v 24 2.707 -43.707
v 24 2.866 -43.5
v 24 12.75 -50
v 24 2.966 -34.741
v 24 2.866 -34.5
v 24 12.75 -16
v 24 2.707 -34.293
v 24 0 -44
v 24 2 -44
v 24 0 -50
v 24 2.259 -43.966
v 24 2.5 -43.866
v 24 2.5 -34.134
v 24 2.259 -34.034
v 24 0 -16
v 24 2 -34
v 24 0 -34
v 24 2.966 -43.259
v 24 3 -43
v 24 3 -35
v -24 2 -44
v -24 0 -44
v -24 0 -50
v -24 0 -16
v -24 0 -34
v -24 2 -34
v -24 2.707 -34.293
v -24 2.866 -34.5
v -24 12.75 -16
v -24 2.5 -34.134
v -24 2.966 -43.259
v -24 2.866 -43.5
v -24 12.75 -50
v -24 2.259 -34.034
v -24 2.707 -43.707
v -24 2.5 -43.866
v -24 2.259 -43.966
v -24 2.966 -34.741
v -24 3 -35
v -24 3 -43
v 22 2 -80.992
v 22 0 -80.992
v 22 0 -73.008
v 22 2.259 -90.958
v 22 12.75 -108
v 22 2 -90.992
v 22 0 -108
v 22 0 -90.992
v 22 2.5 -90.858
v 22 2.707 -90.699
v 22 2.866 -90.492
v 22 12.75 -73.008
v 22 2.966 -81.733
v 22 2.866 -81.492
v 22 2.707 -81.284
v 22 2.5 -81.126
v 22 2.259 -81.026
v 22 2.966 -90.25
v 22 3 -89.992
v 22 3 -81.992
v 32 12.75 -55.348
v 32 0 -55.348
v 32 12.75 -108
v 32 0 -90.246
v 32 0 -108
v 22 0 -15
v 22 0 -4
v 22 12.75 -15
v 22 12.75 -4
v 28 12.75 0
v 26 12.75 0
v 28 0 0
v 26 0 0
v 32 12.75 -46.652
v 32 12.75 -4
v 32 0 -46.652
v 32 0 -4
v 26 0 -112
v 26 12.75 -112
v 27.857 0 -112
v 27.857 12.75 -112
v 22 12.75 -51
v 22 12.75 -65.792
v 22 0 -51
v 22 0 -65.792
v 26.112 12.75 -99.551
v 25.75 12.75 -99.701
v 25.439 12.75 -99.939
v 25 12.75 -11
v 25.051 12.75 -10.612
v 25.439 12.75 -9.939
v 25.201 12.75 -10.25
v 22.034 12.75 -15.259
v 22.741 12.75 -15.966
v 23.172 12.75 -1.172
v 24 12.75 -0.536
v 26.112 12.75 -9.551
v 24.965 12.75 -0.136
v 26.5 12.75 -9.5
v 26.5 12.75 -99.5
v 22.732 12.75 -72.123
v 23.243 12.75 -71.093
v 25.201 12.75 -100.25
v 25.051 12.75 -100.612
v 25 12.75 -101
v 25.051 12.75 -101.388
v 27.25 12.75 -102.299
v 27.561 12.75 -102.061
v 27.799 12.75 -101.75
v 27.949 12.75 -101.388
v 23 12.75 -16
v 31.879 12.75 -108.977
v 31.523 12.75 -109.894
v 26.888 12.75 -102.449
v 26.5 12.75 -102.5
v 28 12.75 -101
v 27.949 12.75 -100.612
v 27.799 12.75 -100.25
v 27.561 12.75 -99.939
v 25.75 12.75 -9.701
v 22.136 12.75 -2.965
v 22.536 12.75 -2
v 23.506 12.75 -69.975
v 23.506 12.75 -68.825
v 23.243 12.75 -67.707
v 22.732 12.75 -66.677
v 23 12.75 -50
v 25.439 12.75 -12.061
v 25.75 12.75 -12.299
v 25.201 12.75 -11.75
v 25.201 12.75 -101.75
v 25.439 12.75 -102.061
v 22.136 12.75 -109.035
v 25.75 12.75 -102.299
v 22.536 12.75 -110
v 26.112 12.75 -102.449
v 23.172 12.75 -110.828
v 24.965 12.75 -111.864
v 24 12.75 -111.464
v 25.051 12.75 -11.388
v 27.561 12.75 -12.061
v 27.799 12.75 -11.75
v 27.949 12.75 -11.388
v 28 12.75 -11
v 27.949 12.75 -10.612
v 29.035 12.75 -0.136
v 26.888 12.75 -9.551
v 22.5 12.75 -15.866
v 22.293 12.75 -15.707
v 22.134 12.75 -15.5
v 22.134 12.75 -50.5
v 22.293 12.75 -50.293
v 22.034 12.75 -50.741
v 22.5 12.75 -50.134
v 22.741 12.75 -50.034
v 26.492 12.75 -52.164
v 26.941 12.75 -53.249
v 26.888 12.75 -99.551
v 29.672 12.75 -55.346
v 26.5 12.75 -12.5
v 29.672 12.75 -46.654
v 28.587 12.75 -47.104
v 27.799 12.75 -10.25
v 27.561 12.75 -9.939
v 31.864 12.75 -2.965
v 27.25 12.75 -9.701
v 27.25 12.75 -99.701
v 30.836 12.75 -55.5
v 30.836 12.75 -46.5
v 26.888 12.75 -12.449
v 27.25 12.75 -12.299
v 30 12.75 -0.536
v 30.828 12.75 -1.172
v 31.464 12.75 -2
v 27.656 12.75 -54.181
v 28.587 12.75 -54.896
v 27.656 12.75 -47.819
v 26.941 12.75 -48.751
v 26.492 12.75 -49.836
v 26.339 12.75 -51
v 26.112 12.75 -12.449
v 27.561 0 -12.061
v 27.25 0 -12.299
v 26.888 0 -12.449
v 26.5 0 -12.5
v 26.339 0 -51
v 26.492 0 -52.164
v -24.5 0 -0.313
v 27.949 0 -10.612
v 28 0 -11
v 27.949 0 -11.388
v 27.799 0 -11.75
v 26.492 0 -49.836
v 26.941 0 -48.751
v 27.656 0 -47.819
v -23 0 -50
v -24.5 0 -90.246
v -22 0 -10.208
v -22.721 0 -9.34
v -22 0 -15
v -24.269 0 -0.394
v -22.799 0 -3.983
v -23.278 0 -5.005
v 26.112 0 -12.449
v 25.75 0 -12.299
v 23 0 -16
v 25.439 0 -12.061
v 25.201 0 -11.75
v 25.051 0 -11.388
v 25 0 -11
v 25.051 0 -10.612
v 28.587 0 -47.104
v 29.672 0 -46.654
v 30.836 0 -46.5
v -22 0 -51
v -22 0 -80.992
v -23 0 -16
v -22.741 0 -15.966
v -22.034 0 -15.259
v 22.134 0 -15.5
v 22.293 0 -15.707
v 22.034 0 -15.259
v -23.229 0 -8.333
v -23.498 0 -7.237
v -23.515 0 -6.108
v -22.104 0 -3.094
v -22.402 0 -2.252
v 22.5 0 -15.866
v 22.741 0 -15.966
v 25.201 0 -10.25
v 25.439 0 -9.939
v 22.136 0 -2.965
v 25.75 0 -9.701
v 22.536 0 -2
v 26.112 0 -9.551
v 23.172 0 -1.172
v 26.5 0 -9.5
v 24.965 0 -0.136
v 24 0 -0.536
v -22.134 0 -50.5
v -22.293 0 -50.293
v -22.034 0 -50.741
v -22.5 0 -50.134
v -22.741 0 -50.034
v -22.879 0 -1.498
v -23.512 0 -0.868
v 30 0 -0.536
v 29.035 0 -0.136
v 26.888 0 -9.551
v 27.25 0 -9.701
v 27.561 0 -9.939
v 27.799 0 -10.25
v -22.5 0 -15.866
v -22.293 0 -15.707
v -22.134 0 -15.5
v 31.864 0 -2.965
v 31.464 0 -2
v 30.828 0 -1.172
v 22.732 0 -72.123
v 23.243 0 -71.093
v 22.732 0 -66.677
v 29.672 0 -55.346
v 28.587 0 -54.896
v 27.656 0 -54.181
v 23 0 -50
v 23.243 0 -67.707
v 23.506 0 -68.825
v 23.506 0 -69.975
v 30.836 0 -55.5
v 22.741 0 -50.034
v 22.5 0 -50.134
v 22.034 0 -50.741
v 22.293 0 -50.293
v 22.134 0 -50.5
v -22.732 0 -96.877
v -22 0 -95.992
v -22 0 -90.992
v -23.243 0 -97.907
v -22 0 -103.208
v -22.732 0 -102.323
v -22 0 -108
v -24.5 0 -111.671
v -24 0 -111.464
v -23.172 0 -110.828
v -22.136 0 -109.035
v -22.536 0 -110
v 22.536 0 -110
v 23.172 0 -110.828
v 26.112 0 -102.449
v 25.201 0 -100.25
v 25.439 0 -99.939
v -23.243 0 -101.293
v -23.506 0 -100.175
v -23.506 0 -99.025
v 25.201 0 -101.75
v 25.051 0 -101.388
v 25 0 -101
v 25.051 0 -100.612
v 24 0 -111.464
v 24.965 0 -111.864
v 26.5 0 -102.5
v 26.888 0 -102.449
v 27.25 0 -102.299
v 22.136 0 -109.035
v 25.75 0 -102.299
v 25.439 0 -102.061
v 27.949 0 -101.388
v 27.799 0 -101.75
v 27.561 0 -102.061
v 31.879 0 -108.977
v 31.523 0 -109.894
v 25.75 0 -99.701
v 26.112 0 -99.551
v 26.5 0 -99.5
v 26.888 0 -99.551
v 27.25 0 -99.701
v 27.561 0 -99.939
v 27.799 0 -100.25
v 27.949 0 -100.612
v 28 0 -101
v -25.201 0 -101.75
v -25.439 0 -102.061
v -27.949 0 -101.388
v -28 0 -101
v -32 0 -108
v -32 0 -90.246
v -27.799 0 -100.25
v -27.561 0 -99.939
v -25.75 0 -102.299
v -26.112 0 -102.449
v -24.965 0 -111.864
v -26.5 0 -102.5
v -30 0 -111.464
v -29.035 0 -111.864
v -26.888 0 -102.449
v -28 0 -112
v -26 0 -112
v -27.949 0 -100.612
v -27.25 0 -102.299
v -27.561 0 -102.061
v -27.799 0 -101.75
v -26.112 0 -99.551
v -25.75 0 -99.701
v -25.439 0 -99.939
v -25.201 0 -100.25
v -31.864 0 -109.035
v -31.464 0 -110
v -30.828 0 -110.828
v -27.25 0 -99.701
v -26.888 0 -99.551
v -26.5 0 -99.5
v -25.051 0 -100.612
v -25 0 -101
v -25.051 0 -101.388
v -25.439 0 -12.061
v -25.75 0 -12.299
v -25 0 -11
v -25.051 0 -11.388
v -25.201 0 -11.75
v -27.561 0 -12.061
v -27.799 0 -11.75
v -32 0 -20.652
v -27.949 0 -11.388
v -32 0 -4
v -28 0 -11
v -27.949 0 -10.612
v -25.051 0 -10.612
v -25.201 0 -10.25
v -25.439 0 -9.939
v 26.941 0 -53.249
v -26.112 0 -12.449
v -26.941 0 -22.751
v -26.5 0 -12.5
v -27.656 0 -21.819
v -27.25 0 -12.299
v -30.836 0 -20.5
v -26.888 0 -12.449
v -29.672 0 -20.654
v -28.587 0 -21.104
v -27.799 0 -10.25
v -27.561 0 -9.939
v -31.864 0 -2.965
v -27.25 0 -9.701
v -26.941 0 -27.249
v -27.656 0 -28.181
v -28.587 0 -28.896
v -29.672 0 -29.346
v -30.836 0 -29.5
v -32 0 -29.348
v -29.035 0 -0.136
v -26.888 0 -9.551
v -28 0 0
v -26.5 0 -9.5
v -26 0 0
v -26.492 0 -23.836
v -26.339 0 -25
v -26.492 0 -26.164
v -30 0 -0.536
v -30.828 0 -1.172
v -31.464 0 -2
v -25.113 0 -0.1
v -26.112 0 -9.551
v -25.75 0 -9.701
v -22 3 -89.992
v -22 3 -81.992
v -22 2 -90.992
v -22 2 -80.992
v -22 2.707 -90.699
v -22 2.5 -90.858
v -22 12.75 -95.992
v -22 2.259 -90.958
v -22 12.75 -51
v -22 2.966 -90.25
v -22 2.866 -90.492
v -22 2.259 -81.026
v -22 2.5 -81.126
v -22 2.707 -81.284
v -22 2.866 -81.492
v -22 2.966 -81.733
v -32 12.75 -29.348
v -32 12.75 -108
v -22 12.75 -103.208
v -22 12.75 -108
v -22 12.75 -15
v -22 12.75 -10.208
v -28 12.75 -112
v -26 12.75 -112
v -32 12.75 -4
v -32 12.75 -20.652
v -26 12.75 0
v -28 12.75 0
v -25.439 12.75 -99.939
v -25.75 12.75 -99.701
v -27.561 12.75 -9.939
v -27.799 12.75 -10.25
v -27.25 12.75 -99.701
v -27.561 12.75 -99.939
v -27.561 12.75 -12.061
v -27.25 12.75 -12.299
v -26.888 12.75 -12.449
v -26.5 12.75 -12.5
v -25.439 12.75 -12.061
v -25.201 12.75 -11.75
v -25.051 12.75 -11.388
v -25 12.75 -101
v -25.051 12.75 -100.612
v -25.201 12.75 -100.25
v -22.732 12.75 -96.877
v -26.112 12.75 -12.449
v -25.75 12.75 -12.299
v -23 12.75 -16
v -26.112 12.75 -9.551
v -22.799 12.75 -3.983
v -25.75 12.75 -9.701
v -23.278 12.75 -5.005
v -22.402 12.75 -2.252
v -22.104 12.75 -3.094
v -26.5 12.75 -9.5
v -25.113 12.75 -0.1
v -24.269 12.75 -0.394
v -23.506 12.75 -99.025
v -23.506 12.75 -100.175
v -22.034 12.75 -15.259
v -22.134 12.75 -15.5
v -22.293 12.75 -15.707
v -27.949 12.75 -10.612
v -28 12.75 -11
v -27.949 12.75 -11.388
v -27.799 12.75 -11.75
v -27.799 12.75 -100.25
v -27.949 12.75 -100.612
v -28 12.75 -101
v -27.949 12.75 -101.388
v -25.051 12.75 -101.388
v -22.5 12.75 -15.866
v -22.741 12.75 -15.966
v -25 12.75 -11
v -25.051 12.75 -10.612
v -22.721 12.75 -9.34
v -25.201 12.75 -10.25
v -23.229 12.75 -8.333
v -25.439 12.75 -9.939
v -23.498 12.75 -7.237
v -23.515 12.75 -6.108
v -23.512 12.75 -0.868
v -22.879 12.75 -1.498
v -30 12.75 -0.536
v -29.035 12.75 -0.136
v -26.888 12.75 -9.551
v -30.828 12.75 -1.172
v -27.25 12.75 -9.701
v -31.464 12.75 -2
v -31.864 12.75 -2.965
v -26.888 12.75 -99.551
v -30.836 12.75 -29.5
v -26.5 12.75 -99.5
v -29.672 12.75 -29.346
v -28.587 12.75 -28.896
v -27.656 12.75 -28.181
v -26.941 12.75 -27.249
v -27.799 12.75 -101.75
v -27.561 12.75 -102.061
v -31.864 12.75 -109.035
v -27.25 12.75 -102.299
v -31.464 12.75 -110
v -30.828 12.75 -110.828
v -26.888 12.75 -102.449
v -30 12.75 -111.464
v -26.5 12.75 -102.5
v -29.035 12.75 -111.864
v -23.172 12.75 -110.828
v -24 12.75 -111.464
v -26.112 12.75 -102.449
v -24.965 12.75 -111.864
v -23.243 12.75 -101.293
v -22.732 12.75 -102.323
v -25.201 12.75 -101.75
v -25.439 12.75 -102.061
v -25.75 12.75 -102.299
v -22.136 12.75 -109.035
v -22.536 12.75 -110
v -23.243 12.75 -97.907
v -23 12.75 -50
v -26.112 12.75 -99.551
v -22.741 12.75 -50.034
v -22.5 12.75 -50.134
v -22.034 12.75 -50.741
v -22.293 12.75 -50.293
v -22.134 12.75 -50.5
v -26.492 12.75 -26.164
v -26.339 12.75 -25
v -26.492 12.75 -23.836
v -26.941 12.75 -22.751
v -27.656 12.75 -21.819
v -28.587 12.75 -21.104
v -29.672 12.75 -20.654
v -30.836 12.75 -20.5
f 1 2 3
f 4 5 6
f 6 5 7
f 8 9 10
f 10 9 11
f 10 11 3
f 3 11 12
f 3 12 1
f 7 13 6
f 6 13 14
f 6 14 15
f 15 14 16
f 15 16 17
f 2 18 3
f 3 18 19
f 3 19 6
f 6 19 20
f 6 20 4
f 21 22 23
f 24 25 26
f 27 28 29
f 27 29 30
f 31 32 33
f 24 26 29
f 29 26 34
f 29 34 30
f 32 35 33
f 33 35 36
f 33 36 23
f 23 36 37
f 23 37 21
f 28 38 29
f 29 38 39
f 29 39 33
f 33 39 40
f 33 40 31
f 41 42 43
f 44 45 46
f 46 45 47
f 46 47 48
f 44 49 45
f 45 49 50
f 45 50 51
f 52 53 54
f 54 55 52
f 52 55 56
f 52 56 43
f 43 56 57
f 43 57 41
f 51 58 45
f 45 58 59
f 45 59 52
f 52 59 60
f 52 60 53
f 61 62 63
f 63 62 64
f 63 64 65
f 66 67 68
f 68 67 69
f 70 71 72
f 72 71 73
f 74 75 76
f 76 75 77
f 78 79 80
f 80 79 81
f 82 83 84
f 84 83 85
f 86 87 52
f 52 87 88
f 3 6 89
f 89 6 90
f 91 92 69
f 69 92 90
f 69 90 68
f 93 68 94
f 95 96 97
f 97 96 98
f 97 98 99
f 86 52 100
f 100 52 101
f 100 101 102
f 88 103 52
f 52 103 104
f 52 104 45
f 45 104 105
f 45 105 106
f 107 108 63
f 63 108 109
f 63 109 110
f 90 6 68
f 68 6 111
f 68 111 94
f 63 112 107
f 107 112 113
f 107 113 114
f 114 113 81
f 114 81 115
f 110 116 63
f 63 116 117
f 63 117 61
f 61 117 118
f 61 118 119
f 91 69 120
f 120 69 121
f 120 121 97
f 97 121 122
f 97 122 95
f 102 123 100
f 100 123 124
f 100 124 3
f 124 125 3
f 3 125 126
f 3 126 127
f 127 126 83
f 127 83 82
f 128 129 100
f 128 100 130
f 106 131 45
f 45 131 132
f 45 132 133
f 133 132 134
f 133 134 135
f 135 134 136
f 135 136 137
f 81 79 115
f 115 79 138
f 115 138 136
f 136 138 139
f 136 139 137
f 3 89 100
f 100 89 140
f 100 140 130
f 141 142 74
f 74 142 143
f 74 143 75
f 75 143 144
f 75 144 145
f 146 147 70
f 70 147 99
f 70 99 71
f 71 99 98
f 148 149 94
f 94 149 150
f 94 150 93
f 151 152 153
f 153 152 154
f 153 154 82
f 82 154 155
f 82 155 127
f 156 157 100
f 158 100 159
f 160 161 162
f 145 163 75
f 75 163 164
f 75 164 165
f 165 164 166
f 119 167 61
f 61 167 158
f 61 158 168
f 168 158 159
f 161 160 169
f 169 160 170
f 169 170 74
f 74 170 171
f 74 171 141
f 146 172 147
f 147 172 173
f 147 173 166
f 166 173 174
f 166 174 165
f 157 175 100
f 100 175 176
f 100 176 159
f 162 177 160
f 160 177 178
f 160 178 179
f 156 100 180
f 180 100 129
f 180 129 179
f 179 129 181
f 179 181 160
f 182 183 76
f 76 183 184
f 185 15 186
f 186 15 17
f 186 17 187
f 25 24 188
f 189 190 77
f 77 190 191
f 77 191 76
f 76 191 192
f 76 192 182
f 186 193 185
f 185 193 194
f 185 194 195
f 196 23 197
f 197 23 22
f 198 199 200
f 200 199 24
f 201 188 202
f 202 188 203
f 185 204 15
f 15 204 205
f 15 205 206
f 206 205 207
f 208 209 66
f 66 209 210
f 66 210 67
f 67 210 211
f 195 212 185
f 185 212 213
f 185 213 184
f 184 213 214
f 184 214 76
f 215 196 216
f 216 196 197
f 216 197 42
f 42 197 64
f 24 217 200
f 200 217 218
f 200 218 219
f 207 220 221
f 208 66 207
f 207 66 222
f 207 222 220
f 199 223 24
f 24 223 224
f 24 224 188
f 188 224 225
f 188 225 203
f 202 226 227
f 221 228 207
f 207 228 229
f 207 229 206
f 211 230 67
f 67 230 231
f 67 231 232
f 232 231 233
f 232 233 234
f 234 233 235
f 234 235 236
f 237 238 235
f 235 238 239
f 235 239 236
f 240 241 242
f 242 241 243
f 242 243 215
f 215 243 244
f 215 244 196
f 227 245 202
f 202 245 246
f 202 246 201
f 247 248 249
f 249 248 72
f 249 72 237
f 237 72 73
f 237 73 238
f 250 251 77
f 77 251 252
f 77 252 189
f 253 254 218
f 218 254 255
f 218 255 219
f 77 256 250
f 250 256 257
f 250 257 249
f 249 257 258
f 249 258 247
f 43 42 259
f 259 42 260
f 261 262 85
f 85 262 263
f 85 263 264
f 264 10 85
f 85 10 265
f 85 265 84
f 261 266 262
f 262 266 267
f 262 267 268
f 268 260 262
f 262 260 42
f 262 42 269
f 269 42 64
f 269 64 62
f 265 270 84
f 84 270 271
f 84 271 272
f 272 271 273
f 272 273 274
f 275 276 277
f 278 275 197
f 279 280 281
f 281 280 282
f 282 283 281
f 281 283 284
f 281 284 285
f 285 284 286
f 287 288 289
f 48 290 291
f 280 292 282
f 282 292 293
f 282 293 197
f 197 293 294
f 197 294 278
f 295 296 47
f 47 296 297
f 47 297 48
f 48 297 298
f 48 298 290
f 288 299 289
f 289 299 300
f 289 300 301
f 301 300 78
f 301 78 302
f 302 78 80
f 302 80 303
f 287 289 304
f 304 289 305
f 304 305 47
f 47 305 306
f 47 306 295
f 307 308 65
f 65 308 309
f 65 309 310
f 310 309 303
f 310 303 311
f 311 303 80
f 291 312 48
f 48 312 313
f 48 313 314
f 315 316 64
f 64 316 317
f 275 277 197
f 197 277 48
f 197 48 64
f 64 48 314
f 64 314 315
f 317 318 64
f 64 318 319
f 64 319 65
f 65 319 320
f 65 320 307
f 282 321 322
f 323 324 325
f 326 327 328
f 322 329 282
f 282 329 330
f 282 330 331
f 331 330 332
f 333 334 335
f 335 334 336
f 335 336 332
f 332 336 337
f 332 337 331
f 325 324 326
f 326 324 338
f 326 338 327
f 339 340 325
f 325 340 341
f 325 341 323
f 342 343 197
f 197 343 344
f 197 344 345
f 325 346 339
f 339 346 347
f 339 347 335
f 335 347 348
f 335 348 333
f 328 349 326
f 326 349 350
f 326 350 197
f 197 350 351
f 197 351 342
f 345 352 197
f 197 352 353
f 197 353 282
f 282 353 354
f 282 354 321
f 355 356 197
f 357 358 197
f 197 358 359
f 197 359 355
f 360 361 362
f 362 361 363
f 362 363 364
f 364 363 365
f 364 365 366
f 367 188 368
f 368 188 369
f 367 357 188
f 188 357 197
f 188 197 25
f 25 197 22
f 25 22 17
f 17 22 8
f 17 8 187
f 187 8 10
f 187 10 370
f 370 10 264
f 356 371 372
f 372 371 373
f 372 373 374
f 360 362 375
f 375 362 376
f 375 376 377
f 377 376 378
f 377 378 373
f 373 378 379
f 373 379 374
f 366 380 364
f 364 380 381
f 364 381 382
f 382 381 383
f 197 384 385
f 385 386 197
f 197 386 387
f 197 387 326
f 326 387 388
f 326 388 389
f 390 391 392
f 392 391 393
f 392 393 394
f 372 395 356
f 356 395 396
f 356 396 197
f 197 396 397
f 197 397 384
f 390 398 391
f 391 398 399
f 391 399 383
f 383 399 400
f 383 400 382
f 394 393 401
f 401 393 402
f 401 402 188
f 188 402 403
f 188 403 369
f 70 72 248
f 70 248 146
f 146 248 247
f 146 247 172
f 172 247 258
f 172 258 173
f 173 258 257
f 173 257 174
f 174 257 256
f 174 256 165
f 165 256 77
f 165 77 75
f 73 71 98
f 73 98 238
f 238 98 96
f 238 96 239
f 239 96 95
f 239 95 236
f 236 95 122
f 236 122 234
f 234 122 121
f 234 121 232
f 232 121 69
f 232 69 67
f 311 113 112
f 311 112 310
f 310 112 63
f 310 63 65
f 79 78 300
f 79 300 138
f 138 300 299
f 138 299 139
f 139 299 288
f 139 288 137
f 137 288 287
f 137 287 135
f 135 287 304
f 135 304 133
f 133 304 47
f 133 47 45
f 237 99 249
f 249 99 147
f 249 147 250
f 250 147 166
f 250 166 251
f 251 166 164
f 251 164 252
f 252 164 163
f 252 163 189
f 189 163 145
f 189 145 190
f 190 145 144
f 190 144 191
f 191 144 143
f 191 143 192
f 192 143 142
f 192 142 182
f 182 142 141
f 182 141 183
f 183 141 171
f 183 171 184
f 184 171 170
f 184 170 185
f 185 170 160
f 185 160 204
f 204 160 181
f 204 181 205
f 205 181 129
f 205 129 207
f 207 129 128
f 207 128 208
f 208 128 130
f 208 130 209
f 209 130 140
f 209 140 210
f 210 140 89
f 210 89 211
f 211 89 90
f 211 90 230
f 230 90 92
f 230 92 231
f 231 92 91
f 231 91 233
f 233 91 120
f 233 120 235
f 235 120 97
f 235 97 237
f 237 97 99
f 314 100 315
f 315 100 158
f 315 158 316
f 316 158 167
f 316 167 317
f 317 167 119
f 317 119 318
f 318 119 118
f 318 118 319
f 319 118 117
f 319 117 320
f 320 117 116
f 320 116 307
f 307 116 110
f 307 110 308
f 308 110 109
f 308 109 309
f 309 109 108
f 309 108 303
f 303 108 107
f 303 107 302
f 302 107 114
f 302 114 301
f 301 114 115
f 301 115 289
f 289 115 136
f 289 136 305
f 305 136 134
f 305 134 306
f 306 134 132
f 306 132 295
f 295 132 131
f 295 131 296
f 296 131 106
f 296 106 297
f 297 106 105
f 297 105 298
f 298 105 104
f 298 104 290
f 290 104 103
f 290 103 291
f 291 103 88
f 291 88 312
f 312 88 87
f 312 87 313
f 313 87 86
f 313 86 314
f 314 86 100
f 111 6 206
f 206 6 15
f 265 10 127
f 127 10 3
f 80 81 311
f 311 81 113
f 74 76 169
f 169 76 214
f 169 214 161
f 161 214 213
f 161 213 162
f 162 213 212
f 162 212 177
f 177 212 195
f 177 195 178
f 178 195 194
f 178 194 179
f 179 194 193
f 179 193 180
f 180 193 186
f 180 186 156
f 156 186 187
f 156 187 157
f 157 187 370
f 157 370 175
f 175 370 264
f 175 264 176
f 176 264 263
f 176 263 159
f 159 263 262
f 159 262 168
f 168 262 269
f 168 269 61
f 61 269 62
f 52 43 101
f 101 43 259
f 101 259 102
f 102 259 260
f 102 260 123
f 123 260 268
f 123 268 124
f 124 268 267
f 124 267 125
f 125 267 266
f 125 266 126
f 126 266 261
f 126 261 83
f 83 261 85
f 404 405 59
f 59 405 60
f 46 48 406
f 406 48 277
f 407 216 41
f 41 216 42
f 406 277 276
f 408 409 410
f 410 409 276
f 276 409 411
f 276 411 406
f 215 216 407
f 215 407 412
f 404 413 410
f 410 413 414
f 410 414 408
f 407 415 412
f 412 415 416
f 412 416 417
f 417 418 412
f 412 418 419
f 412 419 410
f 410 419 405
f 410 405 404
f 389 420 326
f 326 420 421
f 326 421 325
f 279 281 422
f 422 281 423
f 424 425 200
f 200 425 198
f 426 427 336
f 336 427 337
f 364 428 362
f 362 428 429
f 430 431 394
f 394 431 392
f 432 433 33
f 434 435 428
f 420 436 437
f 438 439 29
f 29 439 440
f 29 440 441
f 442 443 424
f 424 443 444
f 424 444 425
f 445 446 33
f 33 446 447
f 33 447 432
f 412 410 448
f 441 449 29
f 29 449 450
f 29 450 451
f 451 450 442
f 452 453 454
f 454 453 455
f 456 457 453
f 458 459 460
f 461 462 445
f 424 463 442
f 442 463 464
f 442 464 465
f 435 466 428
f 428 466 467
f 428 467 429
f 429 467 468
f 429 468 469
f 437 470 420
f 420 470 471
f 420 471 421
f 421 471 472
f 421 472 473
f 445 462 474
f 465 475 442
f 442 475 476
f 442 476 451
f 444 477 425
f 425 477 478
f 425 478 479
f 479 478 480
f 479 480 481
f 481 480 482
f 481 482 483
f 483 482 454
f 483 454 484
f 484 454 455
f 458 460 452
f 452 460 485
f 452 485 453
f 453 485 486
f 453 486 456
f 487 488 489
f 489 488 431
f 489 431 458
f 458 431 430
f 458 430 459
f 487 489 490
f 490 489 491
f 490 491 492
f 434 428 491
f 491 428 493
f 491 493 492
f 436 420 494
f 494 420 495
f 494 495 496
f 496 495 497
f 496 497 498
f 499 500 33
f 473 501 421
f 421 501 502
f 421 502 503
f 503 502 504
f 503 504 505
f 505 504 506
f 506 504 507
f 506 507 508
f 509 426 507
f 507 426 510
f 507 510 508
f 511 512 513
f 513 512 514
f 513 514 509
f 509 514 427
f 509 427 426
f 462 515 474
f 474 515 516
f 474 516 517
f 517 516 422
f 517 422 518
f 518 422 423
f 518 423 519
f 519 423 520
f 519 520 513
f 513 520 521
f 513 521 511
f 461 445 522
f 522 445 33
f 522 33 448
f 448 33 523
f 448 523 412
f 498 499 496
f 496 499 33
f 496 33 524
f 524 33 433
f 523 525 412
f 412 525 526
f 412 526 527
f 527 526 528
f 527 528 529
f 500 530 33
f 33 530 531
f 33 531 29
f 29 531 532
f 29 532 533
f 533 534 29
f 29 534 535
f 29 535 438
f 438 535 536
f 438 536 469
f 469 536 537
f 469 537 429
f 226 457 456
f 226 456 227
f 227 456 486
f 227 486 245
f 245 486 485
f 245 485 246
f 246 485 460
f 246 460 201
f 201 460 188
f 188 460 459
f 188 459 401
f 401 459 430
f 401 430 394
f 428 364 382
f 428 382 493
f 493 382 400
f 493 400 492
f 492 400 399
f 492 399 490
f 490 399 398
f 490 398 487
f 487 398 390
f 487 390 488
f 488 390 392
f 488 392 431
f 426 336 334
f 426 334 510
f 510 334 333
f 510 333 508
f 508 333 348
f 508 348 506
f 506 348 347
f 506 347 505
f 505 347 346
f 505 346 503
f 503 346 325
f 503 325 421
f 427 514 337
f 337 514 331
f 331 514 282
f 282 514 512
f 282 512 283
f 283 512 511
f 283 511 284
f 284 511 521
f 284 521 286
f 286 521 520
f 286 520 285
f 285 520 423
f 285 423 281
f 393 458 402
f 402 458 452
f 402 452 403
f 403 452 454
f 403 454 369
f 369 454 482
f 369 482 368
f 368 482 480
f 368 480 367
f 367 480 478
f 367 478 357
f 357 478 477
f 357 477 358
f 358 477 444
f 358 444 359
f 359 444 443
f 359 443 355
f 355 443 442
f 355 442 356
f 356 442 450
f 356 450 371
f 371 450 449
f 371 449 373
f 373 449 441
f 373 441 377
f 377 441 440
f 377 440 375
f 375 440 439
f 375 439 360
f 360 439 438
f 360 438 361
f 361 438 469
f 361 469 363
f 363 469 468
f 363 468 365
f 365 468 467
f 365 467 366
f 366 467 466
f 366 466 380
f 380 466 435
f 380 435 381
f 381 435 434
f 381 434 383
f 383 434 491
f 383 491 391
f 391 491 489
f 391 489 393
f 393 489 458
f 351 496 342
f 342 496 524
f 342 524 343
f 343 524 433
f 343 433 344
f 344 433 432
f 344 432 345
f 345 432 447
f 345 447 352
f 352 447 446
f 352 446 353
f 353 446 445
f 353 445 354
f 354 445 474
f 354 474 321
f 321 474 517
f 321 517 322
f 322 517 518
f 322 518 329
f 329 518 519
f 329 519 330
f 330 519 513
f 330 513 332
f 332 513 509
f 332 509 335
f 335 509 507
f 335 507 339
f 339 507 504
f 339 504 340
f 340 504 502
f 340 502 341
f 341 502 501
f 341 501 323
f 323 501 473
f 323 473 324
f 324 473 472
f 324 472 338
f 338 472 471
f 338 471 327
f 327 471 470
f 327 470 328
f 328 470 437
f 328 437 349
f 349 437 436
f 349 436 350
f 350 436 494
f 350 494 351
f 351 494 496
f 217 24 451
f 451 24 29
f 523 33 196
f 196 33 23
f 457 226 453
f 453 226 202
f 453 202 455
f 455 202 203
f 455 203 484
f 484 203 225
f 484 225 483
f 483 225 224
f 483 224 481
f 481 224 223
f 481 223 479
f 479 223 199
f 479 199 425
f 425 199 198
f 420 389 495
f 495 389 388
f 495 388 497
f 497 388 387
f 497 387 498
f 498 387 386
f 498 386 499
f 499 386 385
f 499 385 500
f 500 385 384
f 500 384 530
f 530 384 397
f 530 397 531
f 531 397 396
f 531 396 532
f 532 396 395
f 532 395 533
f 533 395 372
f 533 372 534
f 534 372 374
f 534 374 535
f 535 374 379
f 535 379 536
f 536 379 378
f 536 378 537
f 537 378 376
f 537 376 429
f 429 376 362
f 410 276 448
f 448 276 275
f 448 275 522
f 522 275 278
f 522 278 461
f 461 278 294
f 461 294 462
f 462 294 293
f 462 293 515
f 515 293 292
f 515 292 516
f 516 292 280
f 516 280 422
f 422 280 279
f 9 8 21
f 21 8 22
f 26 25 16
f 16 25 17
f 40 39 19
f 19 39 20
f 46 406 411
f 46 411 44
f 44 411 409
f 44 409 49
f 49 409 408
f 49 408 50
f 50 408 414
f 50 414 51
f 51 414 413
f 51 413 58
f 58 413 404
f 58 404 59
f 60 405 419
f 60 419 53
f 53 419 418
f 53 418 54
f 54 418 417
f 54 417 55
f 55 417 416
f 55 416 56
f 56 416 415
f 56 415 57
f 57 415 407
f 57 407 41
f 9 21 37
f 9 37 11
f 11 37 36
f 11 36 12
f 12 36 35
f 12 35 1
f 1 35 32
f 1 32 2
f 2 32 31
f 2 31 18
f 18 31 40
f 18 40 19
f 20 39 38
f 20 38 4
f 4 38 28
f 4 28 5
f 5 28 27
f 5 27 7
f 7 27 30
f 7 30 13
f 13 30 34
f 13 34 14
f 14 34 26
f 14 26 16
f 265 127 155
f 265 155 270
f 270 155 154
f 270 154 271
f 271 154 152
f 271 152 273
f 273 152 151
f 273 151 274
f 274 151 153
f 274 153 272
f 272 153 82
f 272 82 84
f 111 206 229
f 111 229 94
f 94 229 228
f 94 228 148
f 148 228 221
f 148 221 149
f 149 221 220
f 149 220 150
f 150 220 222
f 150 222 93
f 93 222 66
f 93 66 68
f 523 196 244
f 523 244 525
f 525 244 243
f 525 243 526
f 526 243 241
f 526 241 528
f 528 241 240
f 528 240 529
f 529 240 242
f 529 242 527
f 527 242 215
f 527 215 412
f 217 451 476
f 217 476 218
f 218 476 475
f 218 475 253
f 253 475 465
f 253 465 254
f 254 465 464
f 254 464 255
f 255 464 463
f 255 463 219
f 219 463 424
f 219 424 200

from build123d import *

# Parameters (mm, degrees)
SKETCH1_W             = 10
SKETCH1_H             = 112
BOSS_EXTRUDE1_DEPTH   = 12.75
BOSS_EXTRUDE1_2_DEPTH = 12.75
FILLET1_R             = 4
FILLET2_R             = 4
SKETCH2_R             = 1.5
SKETCH2_R_2           = 3
CUT_EXTRUDE1_DEPTH    = 13.75
SKETCH3_W             = 48
SKETCH3_H             = 34
CUT_EXTRUDE2_DEPTH    = 12.75
SKETCH4_R             = 5
SKETCH4_R_2           = 4.5
CUT_EXTRUDE3_DEPTH    = 13.75
SKETCH5_W             = 10
SKETCH5_H             = 3
BOSS_EXTRUDE2_DEPTH   = 44
BOSS_EXTRUDE3_REACH   = 58
SKETCH6_W             = 10
SKETCH6_H             = 3
FILLET3_R             = 1


with BuildPart() as part:
    # Sketch1 → Boss-Extrude1 (new body)
    with BuildSketch(Plane(origin=(0, 0, 0), x_dir=(1, 0, 0), z_dir=(0, 1, 0))):
        with Locations((-27, 56)):
            Rectangle(SKETCH1_W, SKETCH1_H)
    extrude(amount=BOSS_EXTRUDE1_DEPTH)

    # Fillet2
    fillet2_edges = [part.edges().sort_by_distance(p)[0] for p in [
        (-22, 6.375, -112),
        (-22, 6.375, 0),
        (-32, 6.375, 0),
        (-32, 6.375, -112),
    ]]
    fillet(fillet2_edges, radius=FILLET2_R)


with BuildPart() as body_2:
    # Sketch1 → Boss-Extrude1 2 (new body)
    with BuildSketch(Plane(origin=(0, 0, 0), x_dir=(1, 0, 0), z_dir=(0, 1, 0))):
        with Locations((27, 56)):
            Rectangle(SKETCH1_W, SKETCH1_H)
    extrude(amount=BOSS_EXTRUDE1_2_DEPTH)

    # Fillet1
    fillet1_edges = [body_2.edges().sort_by_distance(p)[0] for p in [
        (22, 6.375, 0),
        (22, 6.375, -112),
        (32, 6.375, -112),
        (32, 6.375, 0),
    ]]
    fillet(fillet1_edges, radius=FILLET1_R)


with BuildPart() as cut_extrude1_tool:
    # Sketch2 → Cut-Extrude1 (new body, through all)
    with BuildSketch(Plane(origin=(0, 12.75, 0), x_dir=(1, 0, 0), z_dir=(0, 1, 0))):
        with Locations((-26.5, 101)):
            Circle(SKETCH2_R)
        with Locations((26.5, 101)):
            Circle(SKETCH2_R)
        with Locations((26.5, 11)):
            Circle(SKETCH2_R)
        with Locations((-26.5, 11)):
            Circle(SKETCH2_R)
        with Locations((0, 38)):
            Circle(SKETCH2_R_2)
    extrude(amount=-CUT_EXTRUDE1_DEPTH)


with BuildPart() as part_1:
    add(part.part)

    # Cut-Extrude1: cut by cut_extrude1_tool
    add(cut_extrude1_tool.part, mode=Mode.SUBTRACT)


with BuildPart() as body_2_1:
    add(body_2.part)

    # Cut-Extrude1: cut by cut_extrude1_tool
    add(cut_extrude1_tool.part, mode=Mode.SUBTRACT)


with BuildPart() as cut_extrude2_tool:
    # Sketch3 → Cut-Extrude2 (new body)
    with BuildSketch(Plane(origin=(0, 12.75, 0), x_dir=(1, 0, 0), z_dir=(0, 1, 0))):
        with Locations((0, 33)):
            Rectangle(SKETCH3_W, SKETCH3_H)
    extrude(amount=-CUT_EXTRUDE2_DEPTH)


with BuildPart() as part_2:
    add(part_1.part)

    # Cut-Extrude2: cut by cut_extrude2_tool
    add(cut_extrude2_tool.part, mode=Mode.SUBTRACT)


with BuildPart() as body_2_2:
    add(body_2_1.part)

    # Cut-Extrude2: cut by cut_extrude2_tool
    add(cut_extrude2_tool.part, mode=Mode.SUBTRACT)


with BuildPart() as cut_extrude3_tool:
    # Sketch4 → Cut-Extrude3 (new body, through all)
    with BuildSketch(Plane.XZ):
        with Locations((18.538884711, -69.4)):
            Circle(SKETCH4_R)
        with Locations((-18.538884711, -99.6)):
            Circle(SKETCH4_R)
        with Locations((-18.538884711, -6.6)):
            Circle(SKETCH4_R)
        with Locations((30.838884711, -51)):
            Circle(SKETCH4_R_2)
        with Locations((-30.838884711, -25)):
            Circle(SKETCH4_R_2)
        with BuildLine():
            ThreePointArc((31.774007787, -109.75), (30.281326332, -111.686308388), (27.856664361, -112))
            add(Edge.make_bspline(
                [(31.774007787, -109.75), (30.468226645, -110.5), (29.162445503, -111.25), (27.856664361, -112)],
                knots=[0, 0, 0, 0, 1, 1, 1, 1], degree=3))
        make_face()
    extrude(amount=-CUT_EXTRUDE3_DEPTH)


with BuildPart() as part_3:
    add(part_2.part)

    # Cut-Extrude3: cut by cut_extrude3_tool
    add(cut_extrude3_tool.part, mode=Mode.SUBTRACT)



with BuildPart() as body_2_3:
    add(body_2_2.part)

    # Cut-Extrude3: cut by cut_extrude3_tool
    add(cut_extrude3_tool.part, mode=Mode.SUBTRACT)


with BuildPart() as part_4:
    add(part_3.part)

    add(body_2_3.part)  # Boss-Extrude2 merges body 2
    # Sketch5 → Boss-Extrude2 (add)
    with BuildSketch(Plane(origin=(-22, 0, 0), x_dir=(0, 0, -1), z_dir=(1, 0, 0))):
        with Locations((85.991581932, 1.5)):
            Rectangle(SKETCH5_W, SKETCH5_H)
    extrude(amount=BOSS_EXTRUDE2_DEPTH)

    # Sketch6 → Boss-Extrude3 (add, up to next)
    with BuildSketch(Plane(origin=(-24, 0, 0), x_dir=(0, 0, -1), z_dir=(1, 0, 0)), mode=Mode.PRIVATE) as boss_extrude3_sk1:
        with Locations((39, 1.5)):
            Rectangle(SKETCH6_W, SKETCH6_H)
    boss_extrude3_tool1 = extrude(boss_extrude3_sk1.sketch, amount=BOSS_EXTRUDE3_REACH, mode=Mode.PRIVATE) - part_4.part
    add(boss_extrude3_tool1.solids().sort_by_distance((-24, 1.5, -39))[0])

    # Fillet3
    fillet3_edges = [part_4.edges().sort_by_distance(p)[0] for p in [
        (0, 3, -90.991581932),
        (0, 3, -80.991581932),
        (-22, 6.375, -50),
        (-22, 6.375, -16),
        (0, 3, -34),
        (0, 3, -44),
        (22, 6.375, -16),
        (22, 6.375, -50),
    ]]
    fillet(fillet3_edges, radius=FILLET3_R)


solid = part_4.part
